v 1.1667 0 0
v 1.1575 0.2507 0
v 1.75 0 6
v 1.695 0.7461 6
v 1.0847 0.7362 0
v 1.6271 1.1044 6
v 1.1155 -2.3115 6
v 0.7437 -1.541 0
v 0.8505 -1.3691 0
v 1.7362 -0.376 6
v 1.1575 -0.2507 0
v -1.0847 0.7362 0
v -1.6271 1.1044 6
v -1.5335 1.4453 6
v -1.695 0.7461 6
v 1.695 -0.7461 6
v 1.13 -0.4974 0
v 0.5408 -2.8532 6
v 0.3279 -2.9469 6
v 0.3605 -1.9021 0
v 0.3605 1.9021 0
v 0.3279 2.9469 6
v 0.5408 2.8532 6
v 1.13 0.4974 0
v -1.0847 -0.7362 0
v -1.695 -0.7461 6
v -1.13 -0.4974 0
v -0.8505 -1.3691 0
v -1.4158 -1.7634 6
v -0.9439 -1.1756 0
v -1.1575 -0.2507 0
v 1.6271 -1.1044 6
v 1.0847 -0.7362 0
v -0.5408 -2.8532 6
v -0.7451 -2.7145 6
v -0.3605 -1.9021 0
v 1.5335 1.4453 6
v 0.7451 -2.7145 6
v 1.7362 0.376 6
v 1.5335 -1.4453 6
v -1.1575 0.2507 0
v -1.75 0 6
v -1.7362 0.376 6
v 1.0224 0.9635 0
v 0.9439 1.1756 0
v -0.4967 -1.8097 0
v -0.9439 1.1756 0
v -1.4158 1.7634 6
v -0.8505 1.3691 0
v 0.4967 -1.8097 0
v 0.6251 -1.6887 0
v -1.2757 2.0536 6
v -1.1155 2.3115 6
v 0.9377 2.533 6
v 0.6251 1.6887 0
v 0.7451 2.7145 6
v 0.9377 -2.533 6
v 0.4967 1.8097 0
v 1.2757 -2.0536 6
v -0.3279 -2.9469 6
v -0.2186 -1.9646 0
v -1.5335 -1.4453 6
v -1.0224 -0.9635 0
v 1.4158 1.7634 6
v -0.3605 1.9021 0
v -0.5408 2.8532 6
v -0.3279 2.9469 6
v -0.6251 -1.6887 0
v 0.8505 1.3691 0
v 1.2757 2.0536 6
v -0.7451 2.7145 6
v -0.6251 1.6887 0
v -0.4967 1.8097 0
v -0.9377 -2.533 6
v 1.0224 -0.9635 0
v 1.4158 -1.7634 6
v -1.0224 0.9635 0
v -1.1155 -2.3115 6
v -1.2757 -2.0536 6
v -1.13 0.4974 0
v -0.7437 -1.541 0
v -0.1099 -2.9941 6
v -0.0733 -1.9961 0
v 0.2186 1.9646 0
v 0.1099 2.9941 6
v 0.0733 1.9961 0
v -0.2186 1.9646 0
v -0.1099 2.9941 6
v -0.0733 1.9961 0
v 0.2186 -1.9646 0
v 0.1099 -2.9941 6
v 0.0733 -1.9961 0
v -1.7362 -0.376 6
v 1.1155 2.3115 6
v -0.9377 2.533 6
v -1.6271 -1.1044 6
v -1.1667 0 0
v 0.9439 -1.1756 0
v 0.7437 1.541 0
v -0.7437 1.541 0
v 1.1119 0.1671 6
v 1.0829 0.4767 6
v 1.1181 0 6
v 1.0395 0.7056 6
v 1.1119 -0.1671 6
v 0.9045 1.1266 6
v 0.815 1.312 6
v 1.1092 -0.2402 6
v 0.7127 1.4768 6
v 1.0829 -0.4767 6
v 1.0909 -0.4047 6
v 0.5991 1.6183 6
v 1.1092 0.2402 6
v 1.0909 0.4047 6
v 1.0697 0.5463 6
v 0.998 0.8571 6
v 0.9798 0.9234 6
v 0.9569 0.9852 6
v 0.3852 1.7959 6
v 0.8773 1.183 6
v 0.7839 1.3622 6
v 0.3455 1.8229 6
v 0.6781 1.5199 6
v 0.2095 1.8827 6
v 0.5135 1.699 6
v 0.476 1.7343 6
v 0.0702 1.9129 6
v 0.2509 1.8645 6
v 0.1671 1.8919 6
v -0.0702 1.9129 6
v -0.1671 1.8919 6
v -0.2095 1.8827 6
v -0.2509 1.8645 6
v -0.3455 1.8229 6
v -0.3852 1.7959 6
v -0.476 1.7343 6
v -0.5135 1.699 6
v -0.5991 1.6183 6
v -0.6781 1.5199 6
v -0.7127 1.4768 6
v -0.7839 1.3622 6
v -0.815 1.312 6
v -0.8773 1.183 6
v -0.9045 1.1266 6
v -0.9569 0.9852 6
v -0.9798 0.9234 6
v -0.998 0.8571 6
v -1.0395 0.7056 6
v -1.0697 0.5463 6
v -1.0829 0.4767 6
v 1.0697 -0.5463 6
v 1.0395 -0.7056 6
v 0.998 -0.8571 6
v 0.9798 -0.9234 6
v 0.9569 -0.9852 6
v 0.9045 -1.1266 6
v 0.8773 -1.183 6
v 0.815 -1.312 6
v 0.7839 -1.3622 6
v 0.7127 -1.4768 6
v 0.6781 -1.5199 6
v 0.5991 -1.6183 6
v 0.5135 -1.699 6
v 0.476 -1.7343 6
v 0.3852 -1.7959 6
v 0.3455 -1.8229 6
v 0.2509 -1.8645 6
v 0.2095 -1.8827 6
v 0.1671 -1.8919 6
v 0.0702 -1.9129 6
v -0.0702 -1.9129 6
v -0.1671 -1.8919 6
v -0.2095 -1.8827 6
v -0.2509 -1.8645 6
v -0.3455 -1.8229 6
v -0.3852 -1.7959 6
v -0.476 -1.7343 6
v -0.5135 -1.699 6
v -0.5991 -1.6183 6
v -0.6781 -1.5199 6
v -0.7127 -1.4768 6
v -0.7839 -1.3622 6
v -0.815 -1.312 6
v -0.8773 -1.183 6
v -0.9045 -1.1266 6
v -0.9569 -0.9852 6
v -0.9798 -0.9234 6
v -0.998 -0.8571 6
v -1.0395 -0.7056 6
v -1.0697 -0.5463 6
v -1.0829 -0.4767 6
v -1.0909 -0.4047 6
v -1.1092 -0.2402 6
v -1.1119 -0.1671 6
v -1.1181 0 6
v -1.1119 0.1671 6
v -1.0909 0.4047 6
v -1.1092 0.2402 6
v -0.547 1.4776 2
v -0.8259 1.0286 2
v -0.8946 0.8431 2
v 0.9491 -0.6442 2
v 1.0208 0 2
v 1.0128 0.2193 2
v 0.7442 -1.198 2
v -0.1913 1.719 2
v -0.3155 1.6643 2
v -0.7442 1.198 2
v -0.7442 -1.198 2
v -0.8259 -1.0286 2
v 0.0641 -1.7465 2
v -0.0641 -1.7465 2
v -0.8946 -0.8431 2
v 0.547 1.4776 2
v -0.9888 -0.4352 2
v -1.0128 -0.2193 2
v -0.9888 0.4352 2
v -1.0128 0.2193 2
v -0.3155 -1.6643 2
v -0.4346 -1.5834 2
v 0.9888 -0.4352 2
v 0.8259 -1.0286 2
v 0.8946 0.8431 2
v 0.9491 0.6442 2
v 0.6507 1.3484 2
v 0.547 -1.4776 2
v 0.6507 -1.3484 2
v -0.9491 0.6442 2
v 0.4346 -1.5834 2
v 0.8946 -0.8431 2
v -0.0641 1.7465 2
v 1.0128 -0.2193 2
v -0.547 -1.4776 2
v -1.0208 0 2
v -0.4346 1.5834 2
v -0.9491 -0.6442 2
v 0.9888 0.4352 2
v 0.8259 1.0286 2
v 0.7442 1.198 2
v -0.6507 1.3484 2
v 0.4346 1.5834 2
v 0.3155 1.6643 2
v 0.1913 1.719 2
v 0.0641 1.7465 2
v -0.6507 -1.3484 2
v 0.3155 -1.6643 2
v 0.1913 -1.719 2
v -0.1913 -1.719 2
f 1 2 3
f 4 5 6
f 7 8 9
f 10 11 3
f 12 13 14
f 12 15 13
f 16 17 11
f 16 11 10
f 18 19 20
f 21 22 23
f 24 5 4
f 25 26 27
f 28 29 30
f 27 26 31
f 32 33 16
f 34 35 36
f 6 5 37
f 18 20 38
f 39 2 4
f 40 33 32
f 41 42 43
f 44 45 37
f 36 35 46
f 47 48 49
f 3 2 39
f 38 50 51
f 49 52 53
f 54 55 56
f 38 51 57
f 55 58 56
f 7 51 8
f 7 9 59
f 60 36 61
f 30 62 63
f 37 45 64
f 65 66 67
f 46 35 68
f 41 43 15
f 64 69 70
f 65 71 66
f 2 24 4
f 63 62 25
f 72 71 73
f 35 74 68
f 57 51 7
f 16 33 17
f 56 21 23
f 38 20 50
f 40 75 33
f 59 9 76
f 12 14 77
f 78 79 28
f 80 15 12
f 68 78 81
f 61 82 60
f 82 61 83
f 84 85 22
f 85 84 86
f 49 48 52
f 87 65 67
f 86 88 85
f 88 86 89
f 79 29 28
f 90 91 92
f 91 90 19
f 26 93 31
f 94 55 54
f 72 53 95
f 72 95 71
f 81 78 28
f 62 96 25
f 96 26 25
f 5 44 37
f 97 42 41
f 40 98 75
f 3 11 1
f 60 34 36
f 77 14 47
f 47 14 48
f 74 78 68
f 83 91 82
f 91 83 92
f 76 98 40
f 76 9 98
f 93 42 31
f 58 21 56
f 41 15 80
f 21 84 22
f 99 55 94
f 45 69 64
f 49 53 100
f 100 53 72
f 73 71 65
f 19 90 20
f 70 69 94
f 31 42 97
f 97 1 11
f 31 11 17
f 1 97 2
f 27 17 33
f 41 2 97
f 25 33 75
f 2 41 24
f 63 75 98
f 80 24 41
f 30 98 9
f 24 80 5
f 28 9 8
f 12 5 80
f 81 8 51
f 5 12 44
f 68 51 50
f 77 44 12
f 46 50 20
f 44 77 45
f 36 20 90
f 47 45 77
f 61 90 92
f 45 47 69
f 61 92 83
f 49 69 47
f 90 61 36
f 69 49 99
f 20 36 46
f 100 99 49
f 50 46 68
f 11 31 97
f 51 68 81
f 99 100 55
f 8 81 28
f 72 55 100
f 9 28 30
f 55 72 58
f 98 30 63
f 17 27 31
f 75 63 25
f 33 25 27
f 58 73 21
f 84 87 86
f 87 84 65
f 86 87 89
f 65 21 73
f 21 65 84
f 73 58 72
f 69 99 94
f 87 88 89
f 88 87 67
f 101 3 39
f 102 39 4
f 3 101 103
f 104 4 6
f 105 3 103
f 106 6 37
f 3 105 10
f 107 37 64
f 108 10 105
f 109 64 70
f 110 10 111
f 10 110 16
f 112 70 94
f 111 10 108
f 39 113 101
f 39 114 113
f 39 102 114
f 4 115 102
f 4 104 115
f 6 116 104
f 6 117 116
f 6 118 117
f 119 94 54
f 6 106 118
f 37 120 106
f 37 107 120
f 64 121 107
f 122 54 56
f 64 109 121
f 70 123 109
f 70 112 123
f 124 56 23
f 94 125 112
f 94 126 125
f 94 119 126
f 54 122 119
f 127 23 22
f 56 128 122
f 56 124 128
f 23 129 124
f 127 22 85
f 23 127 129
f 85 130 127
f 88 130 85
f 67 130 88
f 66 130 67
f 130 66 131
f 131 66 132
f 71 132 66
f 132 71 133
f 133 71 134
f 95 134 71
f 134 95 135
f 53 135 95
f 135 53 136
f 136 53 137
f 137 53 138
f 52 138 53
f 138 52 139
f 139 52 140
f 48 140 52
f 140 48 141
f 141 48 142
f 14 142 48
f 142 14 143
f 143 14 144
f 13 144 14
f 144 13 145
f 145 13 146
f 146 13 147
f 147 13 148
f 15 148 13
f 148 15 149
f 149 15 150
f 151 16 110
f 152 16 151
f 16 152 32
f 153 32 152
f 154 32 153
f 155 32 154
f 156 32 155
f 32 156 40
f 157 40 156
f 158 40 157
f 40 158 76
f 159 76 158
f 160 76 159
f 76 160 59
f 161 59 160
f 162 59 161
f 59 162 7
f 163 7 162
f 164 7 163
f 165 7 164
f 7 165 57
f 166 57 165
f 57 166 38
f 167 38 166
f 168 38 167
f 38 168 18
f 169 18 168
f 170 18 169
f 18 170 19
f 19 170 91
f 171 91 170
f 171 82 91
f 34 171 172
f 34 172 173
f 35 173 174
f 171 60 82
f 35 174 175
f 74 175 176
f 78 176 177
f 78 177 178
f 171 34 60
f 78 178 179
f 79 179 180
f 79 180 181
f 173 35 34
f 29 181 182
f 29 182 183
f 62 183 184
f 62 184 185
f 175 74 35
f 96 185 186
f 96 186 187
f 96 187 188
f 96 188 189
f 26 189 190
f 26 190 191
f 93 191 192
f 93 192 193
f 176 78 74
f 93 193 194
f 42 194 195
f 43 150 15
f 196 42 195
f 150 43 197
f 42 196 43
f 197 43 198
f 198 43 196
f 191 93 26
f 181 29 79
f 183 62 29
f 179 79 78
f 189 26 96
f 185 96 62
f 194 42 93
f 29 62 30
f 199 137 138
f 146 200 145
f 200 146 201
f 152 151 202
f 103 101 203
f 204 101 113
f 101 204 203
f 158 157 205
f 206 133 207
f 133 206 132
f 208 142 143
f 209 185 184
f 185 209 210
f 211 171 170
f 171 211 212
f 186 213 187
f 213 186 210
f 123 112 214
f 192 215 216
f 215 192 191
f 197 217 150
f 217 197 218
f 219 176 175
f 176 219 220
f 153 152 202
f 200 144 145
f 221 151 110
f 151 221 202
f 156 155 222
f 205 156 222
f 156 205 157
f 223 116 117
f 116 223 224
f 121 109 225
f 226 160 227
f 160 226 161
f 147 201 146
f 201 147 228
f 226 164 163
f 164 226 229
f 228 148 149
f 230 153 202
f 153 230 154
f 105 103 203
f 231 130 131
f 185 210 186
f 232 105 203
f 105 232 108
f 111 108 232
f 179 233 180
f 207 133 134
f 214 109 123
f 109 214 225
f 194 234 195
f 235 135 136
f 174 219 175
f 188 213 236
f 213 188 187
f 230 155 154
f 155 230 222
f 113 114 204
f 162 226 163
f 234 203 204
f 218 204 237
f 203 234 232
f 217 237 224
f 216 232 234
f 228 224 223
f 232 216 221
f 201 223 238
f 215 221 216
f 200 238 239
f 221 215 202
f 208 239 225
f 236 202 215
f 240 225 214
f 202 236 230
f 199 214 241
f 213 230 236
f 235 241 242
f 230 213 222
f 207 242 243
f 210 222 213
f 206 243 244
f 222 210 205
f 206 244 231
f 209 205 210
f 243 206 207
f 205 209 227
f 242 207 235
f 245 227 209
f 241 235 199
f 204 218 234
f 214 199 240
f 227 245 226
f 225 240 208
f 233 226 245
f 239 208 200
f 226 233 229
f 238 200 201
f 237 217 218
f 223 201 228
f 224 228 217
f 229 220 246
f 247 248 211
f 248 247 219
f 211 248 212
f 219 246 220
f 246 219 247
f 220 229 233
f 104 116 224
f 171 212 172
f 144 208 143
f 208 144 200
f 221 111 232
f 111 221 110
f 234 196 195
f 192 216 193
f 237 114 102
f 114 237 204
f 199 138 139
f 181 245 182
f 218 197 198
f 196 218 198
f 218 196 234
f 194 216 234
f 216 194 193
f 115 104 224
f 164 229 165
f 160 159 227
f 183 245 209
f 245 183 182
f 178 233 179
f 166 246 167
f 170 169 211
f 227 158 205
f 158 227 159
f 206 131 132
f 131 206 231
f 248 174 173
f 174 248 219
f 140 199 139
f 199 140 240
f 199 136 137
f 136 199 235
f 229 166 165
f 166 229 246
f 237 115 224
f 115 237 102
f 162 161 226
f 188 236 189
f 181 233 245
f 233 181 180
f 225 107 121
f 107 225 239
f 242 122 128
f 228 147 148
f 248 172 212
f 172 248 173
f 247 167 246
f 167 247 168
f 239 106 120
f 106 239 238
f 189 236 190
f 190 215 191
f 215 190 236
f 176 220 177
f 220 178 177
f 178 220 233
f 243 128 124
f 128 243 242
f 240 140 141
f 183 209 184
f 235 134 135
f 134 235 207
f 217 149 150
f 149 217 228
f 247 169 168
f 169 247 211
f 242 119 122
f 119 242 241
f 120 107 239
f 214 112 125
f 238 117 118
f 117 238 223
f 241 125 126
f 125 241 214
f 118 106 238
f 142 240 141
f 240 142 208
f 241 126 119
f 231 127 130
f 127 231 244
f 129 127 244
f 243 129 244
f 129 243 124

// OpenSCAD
$fn=50;

resize([3.5, 0, 0]) {
difference() {
    cylinder(h = 6, r1=2, r2=3);
    translate([0, 0, 2]) cylinder(h = 6, r1=1.75, r2=2);
}
}
